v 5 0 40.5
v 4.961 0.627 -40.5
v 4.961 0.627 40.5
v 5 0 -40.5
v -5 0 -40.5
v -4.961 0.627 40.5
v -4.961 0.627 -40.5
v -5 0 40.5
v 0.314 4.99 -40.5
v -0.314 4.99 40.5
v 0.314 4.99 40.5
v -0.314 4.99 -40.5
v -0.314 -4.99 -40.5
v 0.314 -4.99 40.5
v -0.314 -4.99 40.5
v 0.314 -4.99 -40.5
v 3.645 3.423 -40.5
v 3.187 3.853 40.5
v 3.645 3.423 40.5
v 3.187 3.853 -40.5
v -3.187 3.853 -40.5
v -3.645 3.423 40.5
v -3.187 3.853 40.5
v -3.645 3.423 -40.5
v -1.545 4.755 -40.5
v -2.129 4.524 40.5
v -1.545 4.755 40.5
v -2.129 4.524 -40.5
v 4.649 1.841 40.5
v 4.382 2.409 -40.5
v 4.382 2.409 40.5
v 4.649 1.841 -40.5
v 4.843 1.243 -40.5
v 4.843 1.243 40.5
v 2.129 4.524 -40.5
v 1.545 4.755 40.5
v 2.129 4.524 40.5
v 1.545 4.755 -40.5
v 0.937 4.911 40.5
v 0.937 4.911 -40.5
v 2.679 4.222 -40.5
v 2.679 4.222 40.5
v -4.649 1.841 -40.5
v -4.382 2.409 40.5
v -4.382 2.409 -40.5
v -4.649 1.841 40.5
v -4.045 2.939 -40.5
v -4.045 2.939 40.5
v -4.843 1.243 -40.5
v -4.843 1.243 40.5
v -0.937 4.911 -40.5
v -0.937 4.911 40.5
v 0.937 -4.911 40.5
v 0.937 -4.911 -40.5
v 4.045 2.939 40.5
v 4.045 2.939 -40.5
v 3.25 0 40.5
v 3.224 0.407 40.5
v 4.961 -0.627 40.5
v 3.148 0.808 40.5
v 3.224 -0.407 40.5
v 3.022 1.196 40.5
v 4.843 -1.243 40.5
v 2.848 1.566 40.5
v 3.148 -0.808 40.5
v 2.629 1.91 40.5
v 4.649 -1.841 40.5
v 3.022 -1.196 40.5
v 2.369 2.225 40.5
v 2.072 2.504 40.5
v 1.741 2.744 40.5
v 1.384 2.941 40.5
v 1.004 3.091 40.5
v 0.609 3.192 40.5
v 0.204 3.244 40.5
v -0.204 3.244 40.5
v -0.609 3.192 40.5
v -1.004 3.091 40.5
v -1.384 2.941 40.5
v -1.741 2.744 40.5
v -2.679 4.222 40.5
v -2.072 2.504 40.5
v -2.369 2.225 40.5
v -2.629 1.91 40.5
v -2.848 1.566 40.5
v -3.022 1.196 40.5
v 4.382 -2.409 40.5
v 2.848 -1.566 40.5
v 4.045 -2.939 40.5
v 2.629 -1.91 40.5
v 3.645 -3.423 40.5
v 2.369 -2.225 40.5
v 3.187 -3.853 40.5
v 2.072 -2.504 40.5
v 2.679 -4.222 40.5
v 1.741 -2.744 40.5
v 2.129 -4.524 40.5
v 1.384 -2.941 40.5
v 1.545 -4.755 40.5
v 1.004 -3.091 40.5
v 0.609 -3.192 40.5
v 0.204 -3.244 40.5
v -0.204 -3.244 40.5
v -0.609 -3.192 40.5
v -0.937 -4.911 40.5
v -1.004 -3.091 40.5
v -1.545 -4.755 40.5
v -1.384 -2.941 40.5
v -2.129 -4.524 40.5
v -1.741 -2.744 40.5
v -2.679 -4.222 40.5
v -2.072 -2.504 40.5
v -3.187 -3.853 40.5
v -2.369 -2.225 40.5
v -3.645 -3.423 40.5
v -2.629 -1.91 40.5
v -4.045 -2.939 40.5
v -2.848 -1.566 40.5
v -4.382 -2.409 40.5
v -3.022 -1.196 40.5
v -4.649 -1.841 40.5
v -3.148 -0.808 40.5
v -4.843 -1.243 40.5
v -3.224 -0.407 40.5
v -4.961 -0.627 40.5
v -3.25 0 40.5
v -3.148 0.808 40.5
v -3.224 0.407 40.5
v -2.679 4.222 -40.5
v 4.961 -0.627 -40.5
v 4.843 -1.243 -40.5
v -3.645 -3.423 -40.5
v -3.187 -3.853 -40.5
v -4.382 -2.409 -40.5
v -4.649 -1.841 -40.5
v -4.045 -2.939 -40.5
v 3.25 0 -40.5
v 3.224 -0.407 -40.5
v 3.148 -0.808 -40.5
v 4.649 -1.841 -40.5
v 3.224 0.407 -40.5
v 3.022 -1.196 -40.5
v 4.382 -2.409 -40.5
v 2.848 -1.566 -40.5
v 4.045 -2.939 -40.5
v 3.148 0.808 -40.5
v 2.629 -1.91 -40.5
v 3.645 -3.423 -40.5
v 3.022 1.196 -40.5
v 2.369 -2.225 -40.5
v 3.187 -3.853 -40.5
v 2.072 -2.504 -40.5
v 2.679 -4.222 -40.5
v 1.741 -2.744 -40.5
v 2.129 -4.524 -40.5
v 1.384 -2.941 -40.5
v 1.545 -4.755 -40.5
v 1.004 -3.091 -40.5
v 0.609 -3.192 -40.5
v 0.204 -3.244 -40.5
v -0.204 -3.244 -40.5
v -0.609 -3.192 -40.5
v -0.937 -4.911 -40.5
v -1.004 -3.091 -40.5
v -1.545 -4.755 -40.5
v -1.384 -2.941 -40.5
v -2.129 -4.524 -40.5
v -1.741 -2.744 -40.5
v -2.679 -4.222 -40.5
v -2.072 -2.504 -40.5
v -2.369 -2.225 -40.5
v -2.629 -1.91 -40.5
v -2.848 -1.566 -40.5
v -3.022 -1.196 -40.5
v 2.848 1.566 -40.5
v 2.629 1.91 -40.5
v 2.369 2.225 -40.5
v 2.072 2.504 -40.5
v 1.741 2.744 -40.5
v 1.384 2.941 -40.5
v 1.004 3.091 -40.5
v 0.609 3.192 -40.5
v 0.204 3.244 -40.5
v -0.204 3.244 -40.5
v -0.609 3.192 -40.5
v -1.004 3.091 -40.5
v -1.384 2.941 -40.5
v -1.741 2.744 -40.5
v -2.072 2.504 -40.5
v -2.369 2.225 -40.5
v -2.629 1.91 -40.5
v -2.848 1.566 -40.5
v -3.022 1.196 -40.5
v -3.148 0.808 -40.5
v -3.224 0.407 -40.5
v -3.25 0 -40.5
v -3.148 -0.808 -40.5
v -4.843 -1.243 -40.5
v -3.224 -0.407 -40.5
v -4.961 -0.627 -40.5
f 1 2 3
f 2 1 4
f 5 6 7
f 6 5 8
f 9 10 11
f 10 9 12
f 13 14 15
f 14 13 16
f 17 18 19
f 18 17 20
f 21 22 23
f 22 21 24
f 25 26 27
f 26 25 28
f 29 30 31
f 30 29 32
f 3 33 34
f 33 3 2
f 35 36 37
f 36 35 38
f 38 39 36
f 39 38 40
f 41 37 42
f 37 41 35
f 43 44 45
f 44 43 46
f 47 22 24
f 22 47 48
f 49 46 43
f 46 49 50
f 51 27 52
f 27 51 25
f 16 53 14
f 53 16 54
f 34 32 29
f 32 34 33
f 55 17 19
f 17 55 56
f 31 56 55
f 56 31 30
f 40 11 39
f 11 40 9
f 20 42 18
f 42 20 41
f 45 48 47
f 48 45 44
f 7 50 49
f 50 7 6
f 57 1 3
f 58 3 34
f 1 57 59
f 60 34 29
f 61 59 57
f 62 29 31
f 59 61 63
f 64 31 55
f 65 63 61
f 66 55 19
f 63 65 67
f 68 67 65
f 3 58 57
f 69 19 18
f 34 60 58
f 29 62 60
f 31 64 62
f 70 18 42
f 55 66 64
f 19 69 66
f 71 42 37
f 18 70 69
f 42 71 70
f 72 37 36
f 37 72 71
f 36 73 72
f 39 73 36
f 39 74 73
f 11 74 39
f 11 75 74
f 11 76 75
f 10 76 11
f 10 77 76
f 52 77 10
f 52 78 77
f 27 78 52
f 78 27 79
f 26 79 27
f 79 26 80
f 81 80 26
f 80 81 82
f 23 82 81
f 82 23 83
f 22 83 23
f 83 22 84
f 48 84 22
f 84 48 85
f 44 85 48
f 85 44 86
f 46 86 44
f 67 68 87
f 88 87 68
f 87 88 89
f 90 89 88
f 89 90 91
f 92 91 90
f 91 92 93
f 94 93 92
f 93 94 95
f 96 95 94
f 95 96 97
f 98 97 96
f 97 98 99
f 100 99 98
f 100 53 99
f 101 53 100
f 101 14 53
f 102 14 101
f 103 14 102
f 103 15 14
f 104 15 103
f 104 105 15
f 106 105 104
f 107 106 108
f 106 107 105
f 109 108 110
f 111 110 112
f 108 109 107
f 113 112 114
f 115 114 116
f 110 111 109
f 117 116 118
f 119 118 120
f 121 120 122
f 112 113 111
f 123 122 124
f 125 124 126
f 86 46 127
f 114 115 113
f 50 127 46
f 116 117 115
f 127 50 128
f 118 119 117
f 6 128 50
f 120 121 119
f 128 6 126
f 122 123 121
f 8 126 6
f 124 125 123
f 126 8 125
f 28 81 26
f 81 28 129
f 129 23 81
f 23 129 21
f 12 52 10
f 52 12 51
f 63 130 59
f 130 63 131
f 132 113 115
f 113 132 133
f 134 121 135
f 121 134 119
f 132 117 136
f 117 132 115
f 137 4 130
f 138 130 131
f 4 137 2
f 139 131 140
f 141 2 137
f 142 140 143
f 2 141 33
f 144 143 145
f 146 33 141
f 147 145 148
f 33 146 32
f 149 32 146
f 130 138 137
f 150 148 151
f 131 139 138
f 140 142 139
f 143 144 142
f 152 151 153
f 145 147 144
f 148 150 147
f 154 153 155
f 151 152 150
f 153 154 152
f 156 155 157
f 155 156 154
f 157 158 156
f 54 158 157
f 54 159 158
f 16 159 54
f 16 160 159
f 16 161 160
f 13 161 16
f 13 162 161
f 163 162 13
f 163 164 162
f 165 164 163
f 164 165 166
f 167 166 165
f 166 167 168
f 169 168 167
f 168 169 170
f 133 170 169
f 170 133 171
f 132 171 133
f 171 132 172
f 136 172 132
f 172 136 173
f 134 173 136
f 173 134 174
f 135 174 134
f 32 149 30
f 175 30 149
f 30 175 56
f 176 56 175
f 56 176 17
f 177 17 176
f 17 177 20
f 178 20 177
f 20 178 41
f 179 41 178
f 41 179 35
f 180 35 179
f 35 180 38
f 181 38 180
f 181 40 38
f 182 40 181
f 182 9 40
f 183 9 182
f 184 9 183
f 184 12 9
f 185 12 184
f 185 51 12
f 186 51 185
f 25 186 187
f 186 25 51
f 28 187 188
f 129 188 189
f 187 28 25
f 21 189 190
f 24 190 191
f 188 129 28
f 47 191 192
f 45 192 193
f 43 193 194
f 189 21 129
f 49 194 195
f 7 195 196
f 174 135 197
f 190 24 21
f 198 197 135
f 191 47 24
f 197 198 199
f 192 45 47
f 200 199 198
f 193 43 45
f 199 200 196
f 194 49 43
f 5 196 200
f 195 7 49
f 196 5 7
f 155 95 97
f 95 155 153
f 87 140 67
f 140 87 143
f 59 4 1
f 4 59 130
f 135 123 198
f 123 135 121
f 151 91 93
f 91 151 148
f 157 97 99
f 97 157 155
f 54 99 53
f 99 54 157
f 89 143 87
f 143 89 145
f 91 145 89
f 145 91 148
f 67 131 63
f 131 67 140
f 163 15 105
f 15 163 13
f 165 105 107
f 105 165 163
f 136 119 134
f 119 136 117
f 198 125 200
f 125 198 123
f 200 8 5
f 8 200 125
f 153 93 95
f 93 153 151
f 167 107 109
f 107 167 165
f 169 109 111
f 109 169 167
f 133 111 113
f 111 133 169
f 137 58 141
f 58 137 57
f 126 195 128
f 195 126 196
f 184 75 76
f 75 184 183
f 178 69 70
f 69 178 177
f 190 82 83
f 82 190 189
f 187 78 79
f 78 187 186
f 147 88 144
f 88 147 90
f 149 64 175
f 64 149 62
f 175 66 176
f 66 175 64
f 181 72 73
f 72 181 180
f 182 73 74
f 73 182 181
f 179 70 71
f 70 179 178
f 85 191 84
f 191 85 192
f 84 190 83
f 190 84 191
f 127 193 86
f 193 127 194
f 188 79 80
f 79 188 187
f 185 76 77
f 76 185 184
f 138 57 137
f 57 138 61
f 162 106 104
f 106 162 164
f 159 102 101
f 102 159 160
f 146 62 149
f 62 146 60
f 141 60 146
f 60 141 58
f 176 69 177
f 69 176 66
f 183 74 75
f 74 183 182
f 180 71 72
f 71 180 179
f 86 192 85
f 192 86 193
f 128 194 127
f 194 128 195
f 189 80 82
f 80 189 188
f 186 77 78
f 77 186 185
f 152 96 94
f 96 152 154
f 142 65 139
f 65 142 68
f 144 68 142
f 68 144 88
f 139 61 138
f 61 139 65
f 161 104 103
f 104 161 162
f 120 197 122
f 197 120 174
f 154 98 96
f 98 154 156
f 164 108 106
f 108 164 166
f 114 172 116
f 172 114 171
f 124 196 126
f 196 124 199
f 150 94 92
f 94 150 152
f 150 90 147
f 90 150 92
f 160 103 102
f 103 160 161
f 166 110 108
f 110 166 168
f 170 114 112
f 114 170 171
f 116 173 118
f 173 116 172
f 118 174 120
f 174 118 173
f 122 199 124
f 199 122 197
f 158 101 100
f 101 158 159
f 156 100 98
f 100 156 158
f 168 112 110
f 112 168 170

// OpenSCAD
$fn = 50;


difference() {
	union() {
		translate(v = [0, 0, -40.5000000000]) {
			cylinder(h = 81, r = 5.0000000000);
		}
	}
	union() {
		translate(v = [0, 0, -100.0000000000]) {
			cylinder(h = 200, r = 3.2500000000);
		}
	}
}
